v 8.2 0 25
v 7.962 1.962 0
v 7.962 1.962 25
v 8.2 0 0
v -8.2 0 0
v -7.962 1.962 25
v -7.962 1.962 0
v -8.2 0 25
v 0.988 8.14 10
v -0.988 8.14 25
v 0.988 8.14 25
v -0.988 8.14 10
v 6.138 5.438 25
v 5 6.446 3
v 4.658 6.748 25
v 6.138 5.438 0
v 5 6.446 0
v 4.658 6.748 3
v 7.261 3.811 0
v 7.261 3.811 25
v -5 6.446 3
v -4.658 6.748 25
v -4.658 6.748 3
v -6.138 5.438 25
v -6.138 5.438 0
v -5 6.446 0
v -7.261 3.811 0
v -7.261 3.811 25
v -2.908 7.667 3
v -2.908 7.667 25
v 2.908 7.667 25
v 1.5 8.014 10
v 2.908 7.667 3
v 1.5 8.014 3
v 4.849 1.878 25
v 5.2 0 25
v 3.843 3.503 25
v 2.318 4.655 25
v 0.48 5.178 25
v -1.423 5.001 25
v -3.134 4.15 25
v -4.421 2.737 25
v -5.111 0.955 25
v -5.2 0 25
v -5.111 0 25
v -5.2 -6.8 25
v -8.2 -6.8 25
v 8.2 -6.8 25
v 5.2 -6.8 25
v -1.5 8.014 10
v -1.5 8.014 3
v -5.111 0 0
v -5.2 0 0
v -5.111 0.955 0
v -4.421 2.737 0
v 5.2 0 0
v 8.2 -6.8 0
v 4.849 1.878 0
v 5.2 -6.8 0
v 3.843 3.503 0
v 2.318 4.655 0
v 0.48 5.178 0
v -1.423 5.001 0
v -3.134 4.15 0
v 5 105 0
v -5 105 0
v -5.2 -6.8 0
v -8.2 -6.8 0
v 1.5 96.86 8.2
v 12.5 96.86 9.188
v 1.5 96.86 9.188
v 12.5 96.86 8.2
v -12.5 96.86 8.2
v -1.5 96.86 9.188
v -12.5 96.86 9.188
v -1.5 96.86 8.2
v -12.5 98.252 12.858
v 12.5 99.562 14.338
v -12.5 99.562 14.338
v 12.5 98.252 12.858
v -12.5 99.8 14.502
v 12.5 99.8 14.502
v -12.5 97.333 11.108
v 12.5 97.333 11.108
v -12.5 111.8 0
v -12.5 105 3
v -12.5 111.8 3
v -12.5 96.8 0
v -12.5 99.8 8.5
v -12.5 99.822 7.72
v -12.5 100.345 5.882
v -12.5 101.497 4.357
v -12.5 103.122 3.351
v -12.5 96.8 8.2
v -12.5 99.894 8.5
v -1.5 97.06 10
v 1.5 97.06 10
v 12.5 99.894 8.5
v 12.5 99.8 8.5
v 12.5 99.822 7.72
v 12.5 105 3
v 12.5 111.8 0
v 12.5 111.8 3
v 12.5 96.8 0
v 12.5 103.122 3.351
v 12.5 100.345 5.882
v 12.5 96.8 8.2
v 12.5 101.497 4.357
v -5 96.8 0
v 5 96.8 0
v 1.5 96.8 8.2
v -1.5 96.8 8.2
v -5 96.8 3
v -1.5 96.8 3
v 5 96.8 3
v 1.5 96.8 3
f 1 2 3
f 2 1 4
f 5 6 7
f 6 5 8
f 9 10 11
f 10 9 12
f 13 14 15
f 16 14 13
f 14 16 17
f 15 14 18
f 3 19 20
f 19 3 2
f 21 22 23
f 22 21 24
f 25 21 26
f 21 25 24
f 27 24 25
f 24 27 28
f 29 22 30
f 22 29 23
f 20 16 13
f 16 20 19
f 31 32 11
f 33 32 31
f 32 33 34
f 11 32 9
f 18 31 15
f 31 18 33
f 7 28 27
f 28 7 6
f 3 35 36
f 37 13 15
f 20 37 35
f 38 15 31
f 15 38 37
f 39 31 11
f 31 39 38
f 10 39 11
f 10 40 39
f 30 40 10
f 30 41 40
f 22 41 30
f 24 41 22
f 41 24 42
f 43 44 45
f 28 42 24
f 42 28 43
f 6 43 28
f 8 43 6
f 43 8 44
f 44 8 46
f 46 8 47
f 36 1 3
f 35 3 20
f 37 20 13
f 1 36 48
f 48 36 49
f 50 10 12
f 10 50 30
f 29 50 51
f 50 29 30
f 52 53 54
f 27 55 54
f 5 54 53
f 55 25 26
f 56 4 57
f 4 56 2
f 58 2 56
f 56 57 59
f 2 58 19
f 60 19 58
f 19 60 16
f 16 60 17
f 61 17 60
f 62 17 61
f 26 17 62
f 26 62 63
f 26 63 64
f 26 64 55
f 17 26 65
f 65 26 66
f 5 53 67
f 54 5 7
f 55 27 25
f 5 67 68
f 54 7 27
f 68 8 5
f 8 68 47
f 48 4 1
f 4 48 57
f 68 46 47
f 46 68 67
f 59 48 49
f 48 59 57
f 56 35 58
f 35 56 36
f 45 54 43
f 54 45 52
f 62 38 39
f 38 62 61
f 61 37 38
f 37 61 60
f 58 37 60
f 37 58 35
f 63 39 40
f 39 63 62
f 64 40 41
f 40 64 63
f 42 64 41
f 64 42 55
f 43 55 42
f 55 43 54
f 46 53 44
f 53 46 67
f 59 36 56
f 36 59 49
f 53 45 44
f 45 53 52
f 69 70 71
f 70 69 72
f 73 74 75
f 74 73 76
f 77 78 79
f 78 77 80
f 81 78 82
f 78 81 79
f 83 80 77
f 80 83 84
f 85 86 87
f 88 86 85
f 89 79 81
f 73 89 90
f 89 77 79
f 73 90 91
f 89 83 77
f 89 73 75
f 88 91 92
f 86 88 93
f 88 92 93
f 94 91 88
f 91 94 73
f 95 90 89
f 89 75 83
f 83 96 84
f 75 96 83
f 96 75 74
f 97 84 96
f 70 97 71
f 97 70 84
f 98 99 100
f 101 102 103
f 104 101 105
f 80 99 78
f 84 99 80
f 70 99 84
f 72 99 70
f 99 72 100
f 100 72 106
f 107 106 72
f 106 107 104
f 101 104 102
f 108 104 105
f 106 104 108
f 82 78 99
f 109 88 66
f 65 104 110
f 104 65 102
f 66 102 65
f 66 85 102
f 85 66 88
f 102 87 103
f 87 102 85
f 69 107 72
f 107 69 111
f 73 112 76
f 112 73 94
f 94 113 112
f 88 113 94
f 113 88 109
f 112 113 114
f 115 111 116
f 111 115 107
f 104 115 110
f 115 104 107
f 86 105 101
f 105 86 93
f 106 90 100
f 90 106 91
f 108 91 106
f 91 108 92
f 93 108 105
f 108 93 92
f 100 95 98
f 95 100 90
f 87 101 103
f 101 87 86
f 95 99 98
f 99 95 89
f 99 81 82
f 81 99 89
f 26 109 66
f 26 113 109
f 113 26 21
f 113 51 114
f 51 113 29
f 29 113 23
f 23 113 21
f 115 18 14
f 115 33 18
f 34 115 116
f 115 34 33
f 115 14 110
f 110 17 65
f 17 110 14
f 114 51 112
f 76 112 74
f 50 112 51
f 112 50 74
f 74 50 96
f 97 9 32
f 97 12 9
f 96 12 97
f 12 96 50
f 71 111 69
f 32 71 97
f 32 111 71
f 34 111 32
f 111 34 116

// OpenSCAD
// Customizable X-axis leveling tool designed for Prusa i3 Berlin.  Used to
// make sure that each side of the X-axis is at the same height.  Necessary
// since there's a stepper motor on each side and they can get out of step.
//
// To use:
// Place "forked" end of tool on Y smooth rod and use Z control to bring the X axis
// just above the flat part of the top of the tool.  Manually rotate the Z rod
// for that side so the X smooth rod just touches the bottom of the "L" at the top
// of the tool.  Adjust the other side the same way.  Go back and forth to each
// side a few times to get the X-axis rod level.
//
// IMPORTANT: Don't squish the tool between the rods by using the Z motor control -
// this could put pressure on the smooth rods and possibly bend them.  Doing the
// final adjustment by hand works best.
//
// Successfully printed using 0.2mm layer height, 1.0mm shell width and 30% infill
// density.  Square or triangular shapes might be more accurate than the curves
// that touch the smooth rods.  Happy to see a remix!

// Michael Ang
// http://michaelang.com
// 25.03.2014

// Copyright (C) 2014 Michael Ang
//
// This program is free software: you can redistribute it and/or modify
// it under the terms of the GNU General Public License as published by
// the Free Software Foundation, either version 3 of the License, or
// (at your option) any later version.
//
// This program is distributed in the hope that it will be useful,
// but WITHOUT ANY WARRANTY; without even the implied warranty of
// MERCHANTABILITY or FITNESS FOR A PARTICULAR PURPOSE.  See the
// GNU General Public License for more details.

// Additionally:
// This work by Michael Ang is licensed under a Creative Commons
// Attribution-ShareAlike 4.0 International License.

// Distance between centers of claws
z_distance = 105;

// Diameter of smooth rods, plus a little extra so the claw sits flat
rod_diameter = 10.4;

// How deep to make claws
claw_depth = 25;

// How tall to make claws
claw_height = 15;

// Thickness of walls
wall_thickness = 3;

// Width of T-beam
beam_width = 10;

// Height of T-beam
beam_height = 10;


module claw(inner_radius, height, depth, wall_thickness, with_entry = false) {
	total_width = (inner_radius + wall_thickness) * 2;

	difference() {
		// outer part
		union() {
			cylinder(r = inner_radius + wall_thickness, h = depth, center = true);
			translate([-total_width/2, -(height - inner_radius - wall_thickness), -depth/2]) cube([(inner_radius + wall_thickness) * 2, height - inner_radius - wall_thickness, depth]);
			if (with_entry) {
				translate([0,0,-depth/2]) cube([inner_radius + wall_thickness, inner_radius + wall_thickness, depth]);
			}
		}
		
		claw_inner(inner_radius, height, depth, wall_thickness, with_entry);
	}
}

module claw_inner(inner_radius, height, depth, wall_thickness, with_entry) {
	cut_overlap = 5;
	
	cube_cutout_height = height - inner_radius - wall_thickness + cut_overlap;
	entry_cutout_height = height - wall_thickness + cut_overlap;

	// inner part
	union() {
		cylinder(r = inner_radius, h = depth + cut_overlap, center = true);
		translate([-inner_radius, -cube_cutout_height, -(depth + cut_overlap)/2]) cube([inner_radius * 2, cube_cutout_height, depth + cut_overlap]);
		if (with_entry) {
			// Chop off part of claw so rod can enter from side
			translate([-(inner_radius+wall_thickness+cut_overlap/2), -entry_cutout_height + inner_radius, -(depth + cut_overlap)/2]) cube([inner_radius * 2, entry_cutout_height, depth + cut_overlap]);
		}
	}
}

module t_beam(length, width, height, thickness) {
	translate([-width/2, 0, 0]) cube([width, length, thickness]);
	translate([-thickness/2, 0, 0]) cube([thickness, length, height]);
}


module x_leveler(z_distance, rod_radius, claw_depth, claw_height, wall_thickness, beam_width, beam_height) {
	translate([0, 0, claw_depth/2]) claw(rod_radius, claw_height, claw_depth, wall_thickness);
	translate([0, z_distance, rod_radius + wall_thickness]) rotate([180,90,0]) claw(rod_radius, claw_height, claw_depth, wall_thickness, with_entry = true);

	difference() {
		t_beam(z_distance, beam_width, beam_height, wall_thickness);
		translate([0, 0, claw_depth/2]) claw_inner(rod_radius, claw_height, claw_depth, wall_thickness);
		translate([0, z_distance, rod_radius + wall_thickness]) rotate([180,90,0]) claw_inner(rod_radius, claw_height, claw_depth, wall_thickness, with_entry = true);
	}
}

x_leveler(z_distance, rod_diameter / 2, claw_depth, claw_height, wall_thickness, beam_width, beam_height);
